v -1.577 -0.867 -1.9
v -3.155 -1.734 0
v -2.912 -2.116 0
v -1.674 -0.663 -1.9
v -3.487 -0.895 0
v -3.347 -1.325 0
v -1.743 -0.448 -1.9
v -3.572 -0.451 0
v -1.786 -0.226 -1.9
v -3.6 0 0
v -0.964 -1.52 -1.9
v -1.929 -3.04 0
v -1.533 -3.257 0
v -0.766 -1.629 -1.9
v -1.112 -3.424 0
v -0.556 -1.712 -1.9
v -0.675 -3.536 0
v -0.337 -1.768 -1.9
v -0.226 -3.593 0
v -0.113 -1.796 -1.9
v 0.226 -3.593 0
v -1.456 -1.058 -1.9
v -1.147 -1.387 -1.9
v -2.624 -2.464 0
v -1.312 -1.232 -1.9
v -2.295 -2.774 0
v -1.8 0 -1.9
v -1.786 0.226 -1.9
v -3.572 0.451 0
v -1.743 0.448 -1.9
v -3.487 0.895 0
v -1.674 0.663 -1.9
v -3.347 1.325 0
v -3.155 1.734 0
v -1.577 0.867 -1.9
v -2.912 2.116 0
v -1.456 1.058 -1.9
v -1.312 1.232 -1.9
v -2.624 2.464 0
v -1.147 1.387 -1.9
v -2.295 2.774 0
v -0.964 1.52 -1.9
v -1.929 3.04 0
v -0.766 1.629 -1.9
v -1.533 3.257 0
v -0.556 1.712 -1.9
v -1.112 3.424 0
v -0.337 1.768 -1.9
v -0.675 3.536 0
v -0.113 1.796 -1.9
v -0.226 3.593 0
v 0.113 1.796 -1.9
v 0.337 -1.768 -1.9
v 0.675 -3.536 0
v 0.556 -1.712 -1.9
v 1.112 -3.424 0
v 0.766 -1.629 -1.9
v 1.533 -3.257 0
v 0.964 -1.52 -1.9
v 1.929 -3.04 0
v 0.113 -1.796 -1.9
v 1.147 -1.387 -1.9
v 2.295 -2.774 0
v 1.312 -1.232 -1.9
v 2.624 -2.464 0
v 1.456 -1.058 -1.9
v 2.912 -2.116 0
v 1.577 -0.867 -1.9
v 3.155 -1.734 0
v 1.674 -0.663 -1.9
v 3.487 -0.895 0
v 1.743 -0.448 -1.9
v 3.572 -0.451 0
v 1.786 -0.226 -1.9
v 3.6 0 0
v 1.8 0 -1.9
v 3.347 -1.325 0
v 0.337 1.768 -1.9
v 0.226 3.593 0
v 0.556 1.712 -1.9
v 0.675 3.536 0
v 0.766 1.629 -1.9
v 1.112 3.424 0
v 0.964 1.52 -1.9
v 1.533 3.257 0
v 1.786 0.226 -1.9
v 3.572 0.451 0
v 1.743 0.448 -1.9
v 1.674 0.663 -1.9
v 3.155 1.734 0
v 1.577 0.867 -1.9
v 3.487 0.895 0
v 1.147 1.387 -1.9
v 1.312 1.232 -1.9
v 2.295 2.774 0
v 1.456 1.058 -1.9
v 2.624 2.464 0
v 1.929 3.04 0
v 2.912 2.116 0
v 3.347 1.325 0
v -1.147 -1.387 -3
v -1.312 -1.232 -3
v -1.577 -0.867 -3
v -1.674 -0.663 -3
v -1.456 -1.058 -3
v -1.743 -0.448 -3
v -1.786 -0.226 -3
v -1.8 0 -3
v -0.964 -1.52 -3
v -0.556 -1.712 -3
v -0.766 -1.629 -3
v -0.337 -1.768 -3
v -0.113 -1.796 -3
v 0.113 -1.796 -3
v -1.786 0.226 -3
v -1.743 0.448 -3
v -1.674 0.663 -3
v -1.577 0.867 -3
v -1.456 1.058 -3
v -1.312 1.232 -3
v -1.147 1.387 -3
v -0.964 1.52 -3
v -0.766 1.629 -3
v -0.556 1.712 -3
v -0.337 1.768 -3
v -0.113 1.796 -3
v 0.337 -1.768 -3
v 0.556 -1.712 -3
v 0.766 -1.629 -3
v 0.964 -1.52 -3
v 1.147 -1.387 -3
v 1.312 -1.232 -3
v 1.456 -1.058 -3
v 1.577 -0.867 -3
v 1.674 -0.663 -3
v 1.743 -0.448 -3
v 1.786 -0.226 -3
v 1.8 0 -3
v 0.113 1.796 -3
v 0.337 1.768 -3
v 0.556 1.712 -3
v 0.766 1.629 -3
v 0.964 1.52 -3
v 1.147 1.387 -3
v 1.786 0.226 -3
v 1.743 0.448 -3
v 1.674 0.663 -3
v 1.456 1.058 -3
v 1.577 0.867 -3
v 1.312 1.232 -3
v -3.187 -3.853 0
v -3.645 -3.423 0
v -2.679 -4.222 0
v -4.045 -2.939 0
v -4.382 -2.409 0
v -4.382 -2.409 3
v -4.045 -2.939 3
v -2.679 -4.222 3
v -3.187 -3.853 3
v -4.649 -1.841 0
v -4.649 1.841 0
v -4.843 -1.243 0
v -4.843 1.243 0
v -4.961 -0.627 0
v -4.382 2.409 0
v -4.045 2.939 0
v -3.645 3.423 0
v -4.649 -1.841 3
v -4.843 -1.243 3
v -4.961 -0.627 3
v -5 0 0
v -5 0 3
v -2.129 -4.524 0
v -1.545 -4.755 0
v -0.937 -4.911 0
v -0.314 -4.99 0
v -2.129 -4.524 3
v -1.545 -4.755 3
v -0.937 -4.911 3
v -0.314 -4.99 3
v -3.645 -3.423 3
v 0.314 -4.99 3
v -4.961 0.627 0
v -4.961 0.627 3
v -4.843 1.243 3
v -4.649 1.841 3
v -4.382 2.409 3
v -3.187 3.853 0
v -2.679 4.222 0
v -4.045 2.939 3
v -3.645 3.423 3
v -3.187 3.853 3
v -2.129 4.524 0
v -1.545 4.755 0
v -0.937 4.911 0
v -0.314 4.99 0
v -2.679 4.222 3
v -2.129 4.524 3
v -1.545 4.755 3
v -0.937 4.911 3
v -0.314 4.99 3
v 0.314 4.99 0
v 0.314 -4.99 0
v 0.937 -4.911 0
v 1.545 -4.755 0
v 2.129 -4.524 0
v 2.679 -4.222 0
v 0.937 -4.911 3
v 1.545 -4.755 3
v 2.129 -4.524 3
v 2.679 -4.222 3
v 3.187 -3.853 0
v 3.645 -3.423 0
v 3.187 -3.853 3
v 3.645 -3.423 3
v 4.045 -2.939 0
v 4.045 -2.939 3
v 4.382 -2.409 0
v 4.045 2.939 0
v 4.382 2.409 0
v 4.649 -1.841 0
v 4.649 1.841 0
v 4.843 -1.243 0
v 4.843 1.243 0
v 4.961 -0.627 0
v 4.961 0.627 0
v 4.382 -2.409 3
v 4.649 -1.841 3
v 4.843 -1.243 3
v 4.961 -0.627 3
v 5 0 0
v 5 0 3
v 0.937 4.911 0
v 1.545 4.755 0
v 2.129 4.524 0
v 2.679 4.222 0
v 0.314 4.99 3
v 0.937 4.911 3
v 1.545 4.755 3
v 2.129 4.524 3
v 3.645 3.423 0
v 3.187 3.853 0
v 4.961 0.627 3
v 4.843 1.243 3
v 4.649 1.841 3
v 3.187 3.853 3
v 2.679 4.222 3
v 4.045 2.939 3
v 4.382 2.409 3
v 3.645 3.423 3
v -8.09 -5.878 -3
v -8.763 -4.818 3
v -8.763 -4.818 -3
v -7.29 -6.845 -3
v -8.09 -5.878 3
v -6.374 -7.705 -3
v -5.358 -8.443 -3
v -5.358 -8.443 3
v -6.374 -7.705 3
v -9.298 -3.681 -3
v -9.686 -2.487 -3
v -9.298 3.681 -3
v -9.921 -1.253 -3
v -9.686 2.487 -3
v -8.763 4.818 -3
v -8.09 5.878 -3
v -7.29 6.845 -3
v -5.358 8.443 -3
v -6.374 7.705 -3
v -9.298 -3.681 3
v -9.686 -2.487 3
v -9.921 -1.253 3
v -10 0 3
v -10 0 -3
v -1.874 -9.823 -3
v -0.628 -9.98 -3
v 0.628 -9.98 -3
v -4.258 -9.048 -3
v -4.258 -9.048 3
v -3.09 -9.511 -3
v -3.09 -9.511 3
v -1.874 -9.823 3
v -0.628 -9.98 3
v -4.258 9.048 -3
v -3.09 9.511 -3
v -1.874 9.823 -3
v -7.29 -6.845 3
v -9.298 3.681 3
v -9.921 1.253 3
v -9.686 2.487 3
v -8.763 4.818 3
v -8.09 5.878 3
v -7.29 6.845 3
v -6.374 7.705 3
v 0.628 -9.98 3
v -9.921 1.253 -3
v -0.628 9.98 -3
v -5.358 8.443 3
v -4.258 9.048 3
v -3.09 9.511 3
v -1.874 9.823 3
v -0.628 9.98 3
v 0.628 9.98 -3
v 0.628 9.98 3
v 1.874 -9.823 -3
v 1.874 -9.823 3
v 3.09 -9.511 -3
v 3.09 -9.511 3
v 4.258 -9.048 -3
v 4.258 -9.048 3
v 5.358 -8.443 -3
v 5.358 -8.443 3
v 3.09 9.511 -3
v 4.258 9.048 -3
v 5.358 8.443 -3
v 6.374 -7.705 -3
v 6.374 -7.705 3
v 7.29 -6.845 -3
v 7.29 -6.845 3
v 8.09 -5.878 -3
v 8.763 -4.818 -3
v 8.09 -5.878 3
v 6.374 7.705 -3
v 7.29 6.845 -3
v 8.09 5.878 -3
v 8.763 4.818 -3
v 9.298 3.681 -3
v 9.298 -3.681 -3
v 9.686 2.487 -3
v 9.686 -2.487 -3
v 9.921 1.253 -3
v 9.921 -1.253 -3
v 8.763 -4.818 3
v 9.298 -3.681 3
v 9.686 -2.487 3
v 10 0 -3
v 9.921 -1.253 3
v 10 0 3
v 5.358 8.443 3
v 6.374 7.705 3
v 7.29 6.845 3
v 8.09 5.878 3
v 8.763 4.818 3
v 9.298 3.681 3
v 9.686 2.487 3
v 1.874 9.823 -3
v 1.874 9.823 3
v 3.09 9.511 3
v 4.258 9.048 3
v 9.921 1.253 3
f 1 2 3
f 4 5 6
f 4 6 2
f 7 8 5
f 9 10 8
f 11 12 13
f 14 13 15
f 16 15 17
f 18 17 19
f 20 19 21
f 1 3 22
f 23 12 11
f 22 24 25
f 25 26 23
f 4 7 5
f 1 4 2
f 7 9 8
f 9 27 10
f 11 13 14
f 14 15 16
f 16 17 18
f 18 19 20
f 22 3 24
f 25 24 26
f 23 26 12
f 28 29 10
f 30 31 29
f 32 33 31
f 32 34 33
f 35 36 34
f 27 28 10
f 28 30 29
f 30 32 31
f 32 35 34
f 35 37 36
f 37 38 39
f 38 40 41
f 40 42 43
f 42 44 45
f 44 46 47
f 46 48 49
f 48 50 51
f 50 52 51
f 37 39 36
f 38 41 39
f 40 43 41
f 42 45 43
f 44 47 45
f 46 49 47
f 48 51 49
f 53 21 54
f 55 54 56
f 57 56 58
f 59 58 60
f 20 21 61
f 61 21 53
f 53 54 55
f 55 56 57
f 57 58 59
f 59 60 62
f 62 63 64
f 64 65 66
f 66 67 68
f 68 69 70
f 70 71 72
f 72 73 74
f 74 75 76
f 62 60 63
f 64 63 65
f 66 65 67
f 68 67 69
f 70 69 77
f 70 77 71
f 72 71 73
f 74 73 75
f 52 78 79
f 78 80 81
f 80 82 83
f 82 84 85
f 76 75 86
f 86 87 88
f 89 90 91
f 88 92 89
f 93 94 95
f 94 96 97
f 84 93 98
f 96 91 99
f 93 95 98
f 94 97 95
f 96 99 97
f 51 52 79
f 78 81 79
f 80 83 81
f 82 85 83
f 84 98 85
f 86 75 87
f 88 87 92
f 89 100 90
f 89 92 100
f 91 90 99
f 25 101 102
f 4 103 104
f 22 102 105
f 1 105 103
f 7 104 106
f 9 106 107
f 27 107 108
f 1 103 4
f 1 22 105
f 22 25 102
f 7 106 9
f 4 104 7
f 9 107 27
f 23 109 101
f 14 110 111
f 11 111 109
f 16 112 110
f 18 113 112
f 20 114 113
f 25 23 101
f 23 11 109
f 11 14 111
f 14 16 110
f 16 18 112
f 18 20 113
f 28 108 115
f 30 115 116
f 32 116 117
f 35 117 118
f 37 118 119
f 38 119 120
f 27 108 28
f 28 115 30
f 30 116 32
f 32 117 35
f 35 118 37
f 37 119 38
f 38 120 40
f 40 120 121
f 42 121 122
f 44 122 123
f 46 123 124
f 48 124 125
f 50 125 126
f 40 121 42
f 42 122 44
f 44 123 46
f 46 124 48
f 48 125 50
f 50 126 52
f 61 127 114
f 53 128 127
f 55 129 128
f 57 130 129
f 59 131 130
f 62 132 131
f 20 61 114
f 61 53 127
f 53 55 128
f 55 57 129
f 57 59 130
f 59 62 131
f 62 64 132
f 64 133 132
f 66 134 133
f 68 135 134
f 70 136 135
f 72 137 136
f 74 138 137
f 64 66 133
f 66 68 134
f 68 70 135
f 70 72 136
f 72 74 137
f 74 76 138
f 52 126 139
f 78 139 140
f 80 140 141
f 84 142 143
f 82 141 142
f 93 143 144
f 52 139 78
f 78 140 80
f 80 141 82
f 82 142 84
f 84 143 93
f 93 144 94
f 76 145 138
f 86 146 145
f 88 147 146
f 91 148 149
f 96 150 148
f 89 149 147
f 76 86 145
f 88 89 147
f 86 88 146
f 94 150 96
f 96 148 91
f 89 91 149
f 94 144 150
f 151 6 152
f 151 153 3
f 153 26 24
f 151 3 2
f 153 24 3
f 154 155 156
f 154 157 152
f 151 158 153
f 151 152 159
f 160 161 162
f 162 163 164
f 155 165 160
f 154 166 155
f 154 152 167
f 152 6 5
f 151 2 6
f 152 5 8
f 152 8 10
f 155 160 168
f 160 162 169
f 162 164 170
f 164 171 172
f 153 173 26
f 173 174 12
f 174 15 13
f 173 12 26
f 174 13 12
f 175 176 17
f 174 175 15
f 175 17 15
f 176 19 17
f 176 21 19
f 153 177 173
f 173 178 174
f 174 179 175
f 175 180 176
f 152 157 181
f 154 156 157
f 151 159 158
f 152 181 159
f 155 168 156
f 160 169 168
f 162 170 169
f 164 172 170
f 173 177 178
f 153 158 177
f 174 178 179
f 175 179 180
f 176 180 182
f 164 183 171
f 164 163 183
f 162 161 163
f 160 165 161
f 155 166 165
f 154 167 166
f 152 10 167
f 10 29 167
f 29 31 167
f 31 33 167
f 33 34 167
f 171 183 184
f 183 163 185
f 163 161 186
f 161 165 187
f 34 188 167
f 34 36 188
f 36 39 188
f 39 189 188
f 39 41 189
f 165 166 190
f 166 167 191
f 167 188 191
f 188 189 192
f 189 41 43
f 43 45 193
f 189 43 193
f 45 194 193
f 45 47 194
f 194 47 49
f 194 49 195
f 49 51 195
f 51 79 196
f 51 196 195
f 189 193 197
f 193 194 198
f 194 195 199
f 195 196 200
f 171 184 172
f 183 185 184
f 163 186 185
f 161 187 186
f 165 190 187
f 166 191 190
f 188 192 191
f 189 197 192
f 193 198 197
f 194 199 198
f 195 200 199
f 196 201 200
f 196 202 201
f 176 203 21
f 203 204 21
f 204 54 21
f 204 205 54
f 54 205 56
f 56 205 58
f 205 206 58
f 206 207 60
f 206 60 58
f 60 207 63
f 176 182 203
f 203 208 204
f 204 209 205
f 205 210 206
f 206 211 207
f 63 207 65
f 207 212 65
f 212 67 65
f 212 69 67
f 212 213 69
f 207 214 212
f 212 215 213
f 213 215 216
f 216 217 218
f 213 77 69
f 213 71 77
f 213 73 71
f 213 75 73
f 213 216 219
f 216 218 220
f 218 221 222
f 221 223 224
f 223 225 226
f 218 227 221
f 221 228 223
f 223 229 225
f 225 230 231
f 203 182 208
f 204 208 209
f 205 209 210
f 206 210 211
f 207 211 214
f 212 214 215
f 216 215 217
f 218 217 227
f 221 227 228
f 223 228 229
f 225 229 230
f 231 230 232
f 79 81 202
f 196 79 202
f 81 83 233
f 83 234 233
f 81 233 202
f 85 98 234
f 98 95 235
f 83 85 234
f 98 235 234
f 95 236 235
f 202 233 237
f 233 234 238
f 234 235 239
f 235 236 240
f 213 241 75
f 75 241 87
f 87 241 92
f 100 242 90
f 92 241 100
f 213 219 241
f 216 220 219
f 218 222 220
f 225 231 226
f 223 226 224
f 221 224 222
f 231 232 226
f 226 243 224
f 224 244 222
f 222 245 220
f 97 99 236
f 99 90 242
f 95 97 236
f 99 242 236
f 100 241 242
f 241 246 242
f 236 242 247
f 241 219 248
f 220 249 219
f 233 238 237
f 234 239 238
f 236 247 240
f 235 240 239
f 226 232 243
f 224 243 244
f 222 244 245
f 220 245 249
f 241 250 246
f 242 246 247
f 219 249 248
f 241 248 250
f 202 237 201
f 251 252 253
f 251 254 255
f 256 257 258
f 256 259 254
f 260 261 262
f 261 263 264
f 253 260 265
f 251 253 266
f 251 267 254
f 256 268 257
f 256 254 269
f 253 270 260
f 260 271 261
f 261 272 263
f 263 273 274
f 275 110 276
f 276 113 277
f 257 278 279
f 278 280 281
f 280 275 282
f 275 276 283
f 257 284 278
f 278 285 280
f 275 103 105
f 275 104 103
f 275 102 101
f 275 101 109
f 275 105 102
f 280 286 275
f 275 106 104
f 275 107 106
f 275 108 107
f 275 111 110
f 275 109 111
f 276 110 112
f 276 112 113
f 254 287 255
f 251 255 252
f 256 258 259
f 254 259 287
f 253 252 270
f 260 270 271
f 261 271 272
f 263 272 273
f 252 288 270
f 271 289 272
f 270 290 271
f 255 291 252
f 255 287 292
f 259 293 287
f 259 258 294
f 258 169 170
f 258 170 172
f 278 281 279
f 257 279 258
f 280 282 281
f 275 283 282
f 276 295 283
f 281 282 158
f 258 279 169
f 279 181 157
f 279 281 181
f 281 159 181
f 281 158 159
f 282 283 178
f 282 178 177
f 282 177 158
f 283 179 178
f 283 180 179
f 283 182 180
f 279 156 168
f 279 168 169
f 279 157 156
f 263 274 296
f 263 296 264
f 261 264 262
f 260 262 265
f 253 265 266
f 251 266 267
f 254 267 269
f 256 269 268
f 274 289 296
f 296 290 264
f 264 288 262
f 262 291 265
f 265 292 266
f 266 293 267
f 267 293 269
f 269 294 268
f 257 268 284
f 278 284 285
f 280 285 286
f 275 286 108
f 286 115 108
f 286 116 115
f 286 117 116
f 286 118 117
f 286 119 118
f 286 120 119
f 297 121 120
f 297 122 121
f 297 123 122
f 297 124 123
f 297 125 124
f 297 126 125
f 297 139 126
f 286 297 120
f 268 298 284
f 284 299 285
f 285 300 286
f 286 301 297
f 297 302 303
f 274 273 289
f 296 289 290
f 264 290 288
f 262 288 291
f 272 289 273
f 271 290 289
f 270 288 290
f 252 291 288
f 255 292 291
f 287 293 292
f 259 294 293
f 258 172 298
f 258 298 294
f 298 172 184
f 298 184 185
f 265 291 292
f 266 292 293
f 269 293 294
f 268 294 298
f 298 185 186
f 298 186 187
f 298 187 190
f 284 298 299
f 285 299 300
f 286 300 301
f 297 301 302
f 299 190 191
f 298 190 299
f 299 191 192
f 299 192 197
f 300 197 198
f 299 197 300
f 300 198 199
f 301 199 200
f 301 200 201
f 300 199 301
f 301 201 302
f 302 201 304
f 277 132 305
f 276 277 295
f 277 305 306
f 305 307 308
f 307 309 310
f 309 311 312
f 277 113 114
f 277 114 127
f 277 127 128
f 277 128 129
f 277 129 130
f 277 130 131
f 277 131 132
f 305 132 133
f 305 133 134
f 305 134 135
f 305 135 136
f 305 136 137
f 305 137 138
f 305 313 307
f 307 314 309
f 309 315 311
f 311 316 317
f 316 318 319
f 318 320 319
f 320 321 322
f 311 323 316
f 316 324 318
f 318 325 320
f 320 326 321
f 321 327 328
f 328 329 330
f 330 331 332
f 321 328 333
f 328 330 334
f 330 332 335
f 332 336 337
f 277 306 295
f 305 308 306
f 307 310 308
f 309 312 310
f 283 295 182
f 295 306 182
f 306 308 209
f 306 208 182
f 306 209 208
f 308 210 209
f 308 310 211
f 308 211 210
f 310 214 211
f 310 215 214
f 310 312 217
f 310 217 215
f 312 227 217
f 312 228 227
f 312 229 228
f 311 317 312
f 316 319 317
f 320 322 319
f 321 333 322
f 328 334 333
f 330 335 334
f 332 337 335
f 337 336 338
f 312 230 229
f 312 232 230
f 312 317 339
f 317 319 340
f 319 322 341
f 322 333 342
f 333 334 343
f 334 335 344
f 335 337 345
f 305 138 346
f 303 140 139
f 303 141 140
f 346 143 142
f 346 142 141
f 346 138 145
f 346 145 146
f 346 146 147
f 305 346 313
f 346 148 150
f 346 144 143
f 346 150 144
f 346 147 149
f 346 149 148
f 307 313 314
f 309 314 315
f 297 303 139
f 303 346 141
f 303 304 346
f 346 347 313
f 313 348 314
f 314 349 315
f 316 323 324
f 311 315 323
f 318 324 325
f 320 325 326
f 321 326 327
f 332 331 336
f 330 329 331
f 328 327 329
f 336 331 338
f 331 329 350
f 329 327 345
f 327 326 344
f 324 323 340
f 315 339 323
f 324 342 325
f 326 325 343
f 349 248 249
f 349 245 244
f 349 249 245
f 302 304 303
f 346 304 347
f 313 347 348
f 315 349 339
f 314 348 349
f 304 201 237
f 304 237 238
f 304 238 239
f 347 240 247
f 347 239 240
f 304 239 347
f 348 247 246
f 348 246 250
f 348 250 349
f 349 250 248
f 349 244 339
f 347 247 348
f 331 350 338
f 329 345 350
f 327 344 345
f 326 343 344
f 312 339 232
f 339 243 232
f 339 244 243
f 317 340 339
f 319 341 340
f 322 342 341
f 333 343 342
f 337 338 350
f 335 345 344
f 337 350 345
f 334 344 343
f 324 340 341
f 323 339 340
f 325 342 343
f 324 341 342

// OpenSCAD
$fn = 50;

difference() {
	union() {
		translate(v = [0, 0, -3.0]) {
			cylinder(h = 6, r = 10.0);
		}
	}
	union() {
		translate(v = [0, 0, 0]) {
			rotate(a = [0, 0, 0]) {
				difference() {
					union() {
						translate(v = [0, 0, -6.0]) {
							cylinder(h = 6, r = 1.5);
						}
						translate(v = [0, 0, -1.9]) {
							cylinder(h = 1.9, r1 = 1.8, r2 = 3.6);
						}
						translate(v = [0, 0, -6.0]) {
							cylinder(h = 6, r = 1.8);
						}
						translate(v = [0, 0, -6.0]) {
							cylinder(h = 6, r = 1.5);
						}
					}
					union();
				}
			}
		}
		#cylinder(h = 3, r = 5.0);
	}
}
